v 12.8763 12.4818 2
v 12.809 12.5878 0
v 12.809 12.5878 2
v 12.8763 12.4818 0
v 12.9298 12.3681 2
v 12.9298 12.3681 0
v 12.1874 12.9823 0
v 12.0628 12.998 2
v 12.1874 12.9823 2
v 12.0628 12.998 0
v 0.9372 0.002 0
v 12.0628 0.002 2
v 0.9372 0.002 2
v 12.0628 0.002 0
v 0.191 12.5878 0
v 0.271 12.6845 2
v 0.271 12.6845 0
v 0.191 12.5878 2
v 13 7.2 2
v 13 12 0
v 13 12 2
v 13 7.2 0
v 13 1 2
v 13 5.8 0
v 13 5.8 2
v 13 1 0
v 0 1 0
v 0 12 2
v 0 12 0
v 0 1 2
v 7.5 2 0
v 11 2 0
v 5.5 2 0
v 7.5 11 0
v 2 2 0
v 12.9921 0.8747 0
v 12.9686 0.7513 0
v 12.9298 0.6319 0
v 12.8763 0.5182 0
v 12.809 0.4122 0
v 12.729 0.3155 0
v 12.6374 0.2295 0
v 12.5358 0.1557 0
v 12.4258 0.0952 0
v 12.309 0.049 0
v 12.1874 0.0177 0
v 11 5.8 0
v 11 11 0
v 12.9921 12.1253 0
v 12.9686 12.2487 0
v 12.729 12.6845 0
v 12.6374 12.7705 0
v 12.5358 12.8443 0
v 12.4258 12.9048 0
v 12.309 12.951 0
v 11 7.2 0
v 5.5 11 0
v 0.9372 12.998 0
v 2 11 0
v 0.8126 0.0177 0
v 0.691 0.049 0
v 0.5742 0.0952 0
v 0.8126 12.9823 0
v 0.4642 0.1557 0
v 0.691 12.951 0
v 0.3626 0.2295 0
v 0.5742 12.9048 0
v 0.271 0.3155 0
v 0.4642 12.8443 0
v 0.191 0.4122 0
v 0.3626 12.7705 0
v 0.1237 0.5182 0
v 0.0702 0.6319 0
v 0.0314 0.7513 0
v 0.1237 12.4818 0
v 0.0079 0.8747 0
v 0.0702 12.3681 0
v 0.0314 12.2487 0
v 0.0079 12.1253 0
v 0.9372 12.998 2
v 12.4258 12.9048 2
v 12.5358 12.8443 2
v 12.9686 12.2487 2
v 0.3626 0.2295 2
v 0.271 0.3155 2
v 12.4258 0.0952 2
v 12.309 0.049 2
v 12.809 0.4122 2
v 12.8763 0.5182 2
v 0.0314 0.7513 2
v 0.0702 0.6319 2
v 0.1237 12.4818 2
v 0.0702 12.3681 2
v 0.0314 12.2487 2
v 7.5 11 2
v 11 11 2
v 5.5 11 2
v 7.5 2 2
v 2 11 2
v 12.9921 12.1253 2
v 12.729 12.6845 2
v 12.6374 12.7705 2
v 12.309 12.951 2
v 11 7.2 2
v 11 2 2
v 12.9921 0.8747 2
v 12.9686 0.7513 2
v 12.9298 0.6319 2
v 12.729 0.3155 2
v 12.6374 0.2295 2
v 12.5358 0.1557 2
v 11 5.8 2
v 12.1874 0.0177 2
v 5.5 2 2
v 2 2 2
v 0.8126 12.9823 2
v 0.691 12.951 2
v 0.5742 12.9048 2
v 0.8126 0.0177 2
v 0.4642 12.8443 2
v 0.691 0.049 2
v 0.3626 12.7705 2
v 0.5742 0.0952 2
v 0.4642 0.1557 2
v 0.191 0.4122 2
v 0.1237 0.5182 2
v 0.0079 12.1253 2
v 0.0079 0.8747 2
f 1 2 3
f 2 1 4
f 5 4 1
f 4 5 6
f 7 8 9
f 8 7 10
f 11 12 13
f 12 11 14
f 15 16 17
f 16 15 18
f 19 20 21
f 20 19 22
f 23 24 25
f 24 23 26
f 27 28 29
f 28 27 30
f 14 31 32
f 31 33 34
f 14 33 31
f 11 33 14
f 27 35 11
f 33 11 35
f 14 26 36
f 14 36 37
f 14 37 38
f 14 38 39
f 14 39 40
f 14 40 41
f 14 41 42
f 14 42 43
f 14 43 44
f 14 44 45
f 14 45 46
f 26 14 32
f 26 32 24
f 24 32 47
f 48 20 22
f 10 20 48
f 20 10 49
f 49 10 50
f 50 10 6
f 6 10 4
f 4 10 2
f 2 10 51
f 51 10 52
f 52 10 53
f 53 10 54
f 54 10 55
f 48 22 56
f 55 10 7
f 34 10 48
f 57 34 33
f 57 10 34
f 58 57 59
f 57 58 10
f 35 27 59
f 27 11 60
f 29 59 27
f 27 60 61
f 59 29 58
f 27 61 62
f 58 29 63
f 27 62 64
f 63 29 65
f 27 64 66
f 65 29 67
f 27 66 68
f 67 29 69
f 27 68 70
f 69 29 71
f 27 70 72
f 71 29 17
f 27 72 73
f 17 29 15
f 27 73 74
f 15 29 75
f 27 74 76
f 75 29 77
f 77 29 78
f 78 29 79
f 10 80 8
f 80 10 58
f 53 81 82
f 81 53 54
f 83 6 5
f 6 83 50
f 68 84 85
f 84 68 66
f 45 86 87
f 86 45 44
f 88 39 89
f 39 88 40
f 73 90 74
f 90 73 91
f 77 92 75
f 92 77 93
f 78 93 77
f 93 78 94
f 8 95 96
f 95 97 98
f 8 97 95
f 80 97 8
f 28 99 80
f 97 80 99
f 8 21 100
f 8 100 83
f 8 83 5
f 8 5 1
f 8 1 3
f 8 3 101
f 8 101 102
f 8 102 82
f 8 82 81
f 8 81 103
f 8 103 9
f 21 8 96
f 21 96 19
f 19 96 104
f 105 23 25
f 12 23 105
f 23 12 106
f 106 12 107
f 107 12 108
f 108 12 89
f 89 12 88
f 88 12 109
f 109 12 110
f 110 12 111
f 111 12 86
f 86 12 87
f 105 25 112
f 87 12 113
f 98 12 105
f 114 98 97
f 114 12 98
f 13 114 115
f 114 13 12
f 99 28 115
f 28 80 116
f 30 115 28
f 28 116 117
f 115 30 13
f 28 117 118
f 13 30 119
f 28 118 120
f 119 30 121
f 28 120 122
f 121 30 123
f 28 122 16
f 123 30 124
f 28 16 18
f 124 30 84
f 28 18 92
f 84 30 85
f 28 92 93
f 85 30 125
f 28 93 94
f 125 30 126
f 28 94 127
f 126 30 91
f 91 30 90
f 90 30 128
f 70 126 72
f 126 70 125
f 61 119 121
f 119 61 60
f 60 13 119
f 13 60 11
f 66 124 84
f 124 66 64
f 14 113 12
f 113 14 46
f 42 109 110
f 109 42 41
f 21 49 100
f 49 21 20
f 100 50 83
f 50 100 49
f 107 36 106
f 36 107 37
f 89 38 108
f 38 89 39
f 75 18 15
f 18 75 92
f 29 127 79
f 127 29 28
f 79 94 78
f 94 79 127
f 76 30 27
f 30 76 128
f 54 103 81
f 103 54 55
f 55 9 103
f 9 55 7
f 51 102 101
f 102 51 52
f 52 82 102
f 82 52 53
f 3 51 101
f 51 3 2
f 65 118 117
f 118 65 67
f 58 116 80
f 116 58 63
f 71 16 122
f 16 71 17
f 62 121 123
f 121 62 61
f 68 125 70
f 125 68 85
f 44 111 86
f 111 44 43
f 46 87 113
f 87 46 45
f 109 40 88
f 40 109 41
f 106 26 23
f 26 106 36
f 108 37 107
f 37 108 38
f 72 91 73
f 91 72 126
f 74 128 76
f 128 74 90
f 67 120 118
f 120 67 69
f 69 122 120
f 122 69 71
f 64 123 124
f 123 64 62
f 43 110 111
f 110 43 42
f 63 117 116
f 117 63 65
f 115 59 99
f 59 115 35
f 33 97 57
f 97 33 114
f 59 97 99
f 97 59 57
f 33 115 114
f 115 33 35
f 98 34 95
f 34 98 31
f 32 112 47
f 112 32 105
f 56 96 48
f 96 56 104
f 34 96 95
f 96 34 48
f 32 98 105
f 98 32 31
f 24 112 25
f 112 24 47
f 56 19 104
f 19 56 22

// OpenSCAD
difference() {
    linear_extrude(height=2)
        translate([1,1])
    minkowski() {
        square([11,11]);
        circle(r=1,$fn=50);
    }
    translate([2,2,-1])
        cube([3.5,9,4]);
    translate([7.5,2,-1])
        cube([3.5,9,4]);
    translate([10,5.8,-1])
        cube([4,1.4,4]);
}
